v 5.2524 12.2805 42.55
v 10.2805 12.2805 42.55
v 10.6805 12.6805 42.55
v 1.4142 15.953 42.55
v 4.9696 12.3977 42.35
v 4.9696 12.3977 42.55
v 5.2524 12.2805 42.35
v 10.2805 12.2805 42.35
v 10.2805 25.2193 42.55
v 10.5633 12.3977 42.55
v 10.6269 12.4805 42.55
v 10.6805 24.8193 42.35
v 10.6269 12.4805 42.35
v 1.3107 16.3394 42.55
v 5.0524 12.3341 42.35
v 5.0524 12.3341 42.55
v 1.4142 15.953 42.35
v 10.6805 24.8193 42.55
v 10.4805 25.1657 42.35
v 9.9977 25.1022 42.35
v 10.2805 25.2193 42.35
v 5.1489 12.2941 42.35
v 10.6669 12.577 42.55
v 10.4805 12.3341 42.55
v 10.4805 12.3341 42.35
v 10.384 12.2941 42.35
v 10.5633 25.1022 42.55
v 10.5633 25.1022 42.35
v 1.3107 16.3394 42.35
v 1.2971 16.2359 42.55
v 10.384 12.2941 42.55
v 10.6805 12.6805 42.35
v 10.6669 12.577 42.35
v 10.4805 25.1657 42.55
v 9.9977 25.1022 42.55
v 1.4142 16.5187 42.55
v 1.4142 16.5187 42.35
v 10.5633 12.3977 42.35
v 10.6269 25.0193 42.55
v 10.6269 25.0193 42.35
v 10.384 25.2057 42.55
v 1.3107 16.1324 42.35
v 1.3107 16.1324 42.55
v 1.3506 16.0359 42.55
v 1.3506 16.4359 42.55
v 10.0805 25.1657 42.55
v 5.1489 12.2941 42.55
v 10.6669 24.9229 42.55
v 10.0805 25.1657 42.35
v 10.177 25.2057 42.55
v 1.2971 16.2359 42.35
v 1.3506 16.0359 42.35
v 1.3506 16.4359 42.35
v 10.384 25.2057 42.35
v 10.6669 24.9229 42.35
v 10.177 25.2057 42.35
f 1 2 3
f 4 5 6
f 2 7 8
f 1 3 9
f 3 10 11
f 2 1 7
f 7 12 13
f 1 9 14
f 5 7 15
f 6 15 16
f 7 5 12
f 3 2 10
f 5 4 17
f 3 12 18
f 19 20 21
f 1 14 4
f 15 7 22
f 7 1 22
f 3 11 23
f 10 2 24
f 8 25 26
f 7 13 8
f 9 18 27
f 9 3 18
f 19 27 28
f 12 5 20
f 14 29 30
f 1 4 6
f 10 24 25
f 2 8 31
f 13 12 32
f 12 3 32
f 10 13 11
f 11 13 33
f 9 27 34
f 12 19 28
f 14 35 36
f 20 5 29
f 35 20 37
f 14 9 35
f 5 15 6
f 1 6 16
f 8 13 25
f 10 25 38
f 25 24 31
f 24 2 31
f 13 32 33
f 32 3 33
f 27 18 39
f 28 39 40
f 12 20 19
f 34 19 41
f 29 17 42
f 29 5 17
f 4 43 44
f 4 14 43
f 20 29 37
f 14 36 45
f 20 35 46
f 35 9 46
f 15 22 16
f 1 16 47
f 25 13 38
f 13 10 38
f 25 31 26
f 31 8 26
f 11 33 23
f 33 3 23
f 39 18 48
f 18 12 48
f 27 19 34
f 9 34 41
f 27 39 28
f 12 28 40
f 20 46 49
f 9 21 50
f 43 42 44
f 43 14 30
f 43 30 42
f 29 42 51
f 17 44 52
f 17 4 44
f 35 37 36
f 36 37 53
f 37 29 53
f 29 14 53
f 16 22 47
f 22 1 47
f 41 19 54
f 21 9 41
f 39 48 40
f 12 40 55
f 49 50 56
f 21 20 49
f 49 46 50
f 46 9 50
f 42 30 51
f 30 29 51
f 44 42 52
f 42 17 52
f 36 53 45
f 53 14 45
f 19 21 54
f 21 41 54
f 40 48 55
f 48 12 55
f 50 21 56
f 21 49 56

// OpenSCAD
// file: def.scad
round_radius = 0.6;
sticker_margin = 1.2;
sticker_round_radius = 0.4;
cube_size = 60;
disk_height = 12.5;
disk_radius = cube_size / 2;
base_size = cube_size / 2 / sqrt(10 + 7 * sqrt(2));
cut1_dis = base_size * (1 + sqrt(2) / 2);
cut2_dis = cube_size / 2;
inf = cube_size * 10;

module _cube() {
    cube([cube_size - round_radius * 2, cube_size - round_radius * 2, cube_size - round_radius * 2], center = true);
}

module _disk() {
    translate([0, 0, cube_size / 2 + disk_height / 2])
        cylinder(r = disk_radius - round_radius, h = disk_height - round_radius * 2, center = true, $fn = 96);
}

module _int_cut1() {
    translate([-inf, -inf, cut1_dis + round_radius])
        cube([inf * 2, inf * 2, inf]);
}

module _dif_cut1() {
    translate([-inf, -inf, cut1_dis - round_radius])
        cube([inf * 2, inf * 2, inf]);
}

module _sticker_int_cut1() {
    translate([-inf, -inf, cut1_dis + sticker_margin])
        cube([inf * 2, inf * 2, inf]);
}

module _sticker_dif_cut1() {
    translate([-inf, -inf, cut1_dis - sticker_margin])
        cube([inf * 2, inf * 2, inf]);
}

module _int_cut2() {
    translate([-inf, -inf, cut2_dis + round_radius])
        cube([inf * 2, inf * 2, inf]);
}

module _dif_cut2() {
    translate([-inf, -inf, cut2_dis - round_radius])
        cube([inf * 2, inf * 2, inf]);
}

module _sticker_int_cut2() {
    translate([-inf, -inf, cut2_dis + sticker_margin])
        cube([inf * 2, inf * 2, inf]);
}

module _sticker_dif_cut2() {
    translate([-inf, -inf, cut2_dis - sticker_margin])
        cube([inf * 2, inf * 2, inf]);
}

module _sticker_cube() {
    translate([-cube_size / 2 + sticker_margin, -cube_size / 2 + sticker_margin, cube_size / 2 - 0.05])
        cube([cube_size - sticker_margin * 2, cube_size - sticker_margin * 2, 0.1]);
}

module _sticker_disk() {
    translate([0, 0, cube_size / 2 + disk_height - 0.05])
        cylinder(r = disk_radius - sticker_margin, h = 0.1, center = true, $fn = 96);
}
// main file
include <def.scad>

module sticker_123() {
    minkowski() {
        difference() {
            intersection() {
                _sticker_disk();
                intersection_for (deg = [0, -45])
                    rotate([-90, 0, deg])
                        _sticker_int_cut1();
            }
            for (deg = [45, -90])
                rotate([-90, 0, deg])
                    _sticker_dif_cut1();
        }
        cylinder(r = sticker_round_radius, h = 0.1, center = true, $fn = 24);
    }
}

sticker_123();
